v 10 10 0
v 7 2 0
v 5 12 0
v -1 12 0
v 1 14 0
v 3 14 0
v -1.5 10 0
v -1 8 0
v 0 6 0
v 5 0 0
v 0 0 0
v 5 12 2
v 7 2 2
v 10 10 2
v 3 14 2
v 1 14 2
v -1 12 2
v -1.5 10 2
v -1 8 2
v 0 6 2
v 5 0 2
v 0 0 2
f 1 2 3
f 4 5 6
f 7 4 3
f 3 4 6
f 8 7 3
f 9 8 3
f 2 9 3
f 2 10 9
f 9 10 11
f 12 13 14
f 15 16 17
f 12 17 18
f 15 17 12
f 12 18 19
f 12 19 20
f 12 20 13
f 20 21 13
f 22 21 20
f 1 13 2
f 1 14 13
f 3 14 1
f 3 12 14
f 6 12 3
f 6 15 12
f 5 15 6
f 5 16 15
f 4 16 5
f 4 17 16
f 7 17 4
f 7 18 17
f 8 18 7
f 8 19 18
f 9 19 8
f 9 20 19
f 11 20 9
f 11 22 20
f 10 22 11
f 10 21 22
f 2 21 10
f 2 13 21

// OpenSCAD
// Locking Key Parameters
thickness = 2; // Thickness of the key (extrusion depth)

// 2D profile of the locking key
module locking_key_profile() {
    polygon(points=[
        [0, 0],         // Start at origin
        [5, 0],         // Right edge
        [7, 2],         // Angled edge
        [10, 10],       // Tapered sharp end
        [5, 12],        // Top angled edge
        [3, 14],        // Top left
        [1, 14],        // Start of semicircle
        [-1, 12],       // Left curve
        [-1.5, 10],     // Bottom of semicircle
        [-1, 8],        // Curve up
        [0, 6]          // Connect back to origin
    ]);
}

// Extrude the 2D profile to 3D
module locking_key() {
    linear_extrude(height=thickness)
        locking_key_profile();
}

// Render the locking key
locking_key();
